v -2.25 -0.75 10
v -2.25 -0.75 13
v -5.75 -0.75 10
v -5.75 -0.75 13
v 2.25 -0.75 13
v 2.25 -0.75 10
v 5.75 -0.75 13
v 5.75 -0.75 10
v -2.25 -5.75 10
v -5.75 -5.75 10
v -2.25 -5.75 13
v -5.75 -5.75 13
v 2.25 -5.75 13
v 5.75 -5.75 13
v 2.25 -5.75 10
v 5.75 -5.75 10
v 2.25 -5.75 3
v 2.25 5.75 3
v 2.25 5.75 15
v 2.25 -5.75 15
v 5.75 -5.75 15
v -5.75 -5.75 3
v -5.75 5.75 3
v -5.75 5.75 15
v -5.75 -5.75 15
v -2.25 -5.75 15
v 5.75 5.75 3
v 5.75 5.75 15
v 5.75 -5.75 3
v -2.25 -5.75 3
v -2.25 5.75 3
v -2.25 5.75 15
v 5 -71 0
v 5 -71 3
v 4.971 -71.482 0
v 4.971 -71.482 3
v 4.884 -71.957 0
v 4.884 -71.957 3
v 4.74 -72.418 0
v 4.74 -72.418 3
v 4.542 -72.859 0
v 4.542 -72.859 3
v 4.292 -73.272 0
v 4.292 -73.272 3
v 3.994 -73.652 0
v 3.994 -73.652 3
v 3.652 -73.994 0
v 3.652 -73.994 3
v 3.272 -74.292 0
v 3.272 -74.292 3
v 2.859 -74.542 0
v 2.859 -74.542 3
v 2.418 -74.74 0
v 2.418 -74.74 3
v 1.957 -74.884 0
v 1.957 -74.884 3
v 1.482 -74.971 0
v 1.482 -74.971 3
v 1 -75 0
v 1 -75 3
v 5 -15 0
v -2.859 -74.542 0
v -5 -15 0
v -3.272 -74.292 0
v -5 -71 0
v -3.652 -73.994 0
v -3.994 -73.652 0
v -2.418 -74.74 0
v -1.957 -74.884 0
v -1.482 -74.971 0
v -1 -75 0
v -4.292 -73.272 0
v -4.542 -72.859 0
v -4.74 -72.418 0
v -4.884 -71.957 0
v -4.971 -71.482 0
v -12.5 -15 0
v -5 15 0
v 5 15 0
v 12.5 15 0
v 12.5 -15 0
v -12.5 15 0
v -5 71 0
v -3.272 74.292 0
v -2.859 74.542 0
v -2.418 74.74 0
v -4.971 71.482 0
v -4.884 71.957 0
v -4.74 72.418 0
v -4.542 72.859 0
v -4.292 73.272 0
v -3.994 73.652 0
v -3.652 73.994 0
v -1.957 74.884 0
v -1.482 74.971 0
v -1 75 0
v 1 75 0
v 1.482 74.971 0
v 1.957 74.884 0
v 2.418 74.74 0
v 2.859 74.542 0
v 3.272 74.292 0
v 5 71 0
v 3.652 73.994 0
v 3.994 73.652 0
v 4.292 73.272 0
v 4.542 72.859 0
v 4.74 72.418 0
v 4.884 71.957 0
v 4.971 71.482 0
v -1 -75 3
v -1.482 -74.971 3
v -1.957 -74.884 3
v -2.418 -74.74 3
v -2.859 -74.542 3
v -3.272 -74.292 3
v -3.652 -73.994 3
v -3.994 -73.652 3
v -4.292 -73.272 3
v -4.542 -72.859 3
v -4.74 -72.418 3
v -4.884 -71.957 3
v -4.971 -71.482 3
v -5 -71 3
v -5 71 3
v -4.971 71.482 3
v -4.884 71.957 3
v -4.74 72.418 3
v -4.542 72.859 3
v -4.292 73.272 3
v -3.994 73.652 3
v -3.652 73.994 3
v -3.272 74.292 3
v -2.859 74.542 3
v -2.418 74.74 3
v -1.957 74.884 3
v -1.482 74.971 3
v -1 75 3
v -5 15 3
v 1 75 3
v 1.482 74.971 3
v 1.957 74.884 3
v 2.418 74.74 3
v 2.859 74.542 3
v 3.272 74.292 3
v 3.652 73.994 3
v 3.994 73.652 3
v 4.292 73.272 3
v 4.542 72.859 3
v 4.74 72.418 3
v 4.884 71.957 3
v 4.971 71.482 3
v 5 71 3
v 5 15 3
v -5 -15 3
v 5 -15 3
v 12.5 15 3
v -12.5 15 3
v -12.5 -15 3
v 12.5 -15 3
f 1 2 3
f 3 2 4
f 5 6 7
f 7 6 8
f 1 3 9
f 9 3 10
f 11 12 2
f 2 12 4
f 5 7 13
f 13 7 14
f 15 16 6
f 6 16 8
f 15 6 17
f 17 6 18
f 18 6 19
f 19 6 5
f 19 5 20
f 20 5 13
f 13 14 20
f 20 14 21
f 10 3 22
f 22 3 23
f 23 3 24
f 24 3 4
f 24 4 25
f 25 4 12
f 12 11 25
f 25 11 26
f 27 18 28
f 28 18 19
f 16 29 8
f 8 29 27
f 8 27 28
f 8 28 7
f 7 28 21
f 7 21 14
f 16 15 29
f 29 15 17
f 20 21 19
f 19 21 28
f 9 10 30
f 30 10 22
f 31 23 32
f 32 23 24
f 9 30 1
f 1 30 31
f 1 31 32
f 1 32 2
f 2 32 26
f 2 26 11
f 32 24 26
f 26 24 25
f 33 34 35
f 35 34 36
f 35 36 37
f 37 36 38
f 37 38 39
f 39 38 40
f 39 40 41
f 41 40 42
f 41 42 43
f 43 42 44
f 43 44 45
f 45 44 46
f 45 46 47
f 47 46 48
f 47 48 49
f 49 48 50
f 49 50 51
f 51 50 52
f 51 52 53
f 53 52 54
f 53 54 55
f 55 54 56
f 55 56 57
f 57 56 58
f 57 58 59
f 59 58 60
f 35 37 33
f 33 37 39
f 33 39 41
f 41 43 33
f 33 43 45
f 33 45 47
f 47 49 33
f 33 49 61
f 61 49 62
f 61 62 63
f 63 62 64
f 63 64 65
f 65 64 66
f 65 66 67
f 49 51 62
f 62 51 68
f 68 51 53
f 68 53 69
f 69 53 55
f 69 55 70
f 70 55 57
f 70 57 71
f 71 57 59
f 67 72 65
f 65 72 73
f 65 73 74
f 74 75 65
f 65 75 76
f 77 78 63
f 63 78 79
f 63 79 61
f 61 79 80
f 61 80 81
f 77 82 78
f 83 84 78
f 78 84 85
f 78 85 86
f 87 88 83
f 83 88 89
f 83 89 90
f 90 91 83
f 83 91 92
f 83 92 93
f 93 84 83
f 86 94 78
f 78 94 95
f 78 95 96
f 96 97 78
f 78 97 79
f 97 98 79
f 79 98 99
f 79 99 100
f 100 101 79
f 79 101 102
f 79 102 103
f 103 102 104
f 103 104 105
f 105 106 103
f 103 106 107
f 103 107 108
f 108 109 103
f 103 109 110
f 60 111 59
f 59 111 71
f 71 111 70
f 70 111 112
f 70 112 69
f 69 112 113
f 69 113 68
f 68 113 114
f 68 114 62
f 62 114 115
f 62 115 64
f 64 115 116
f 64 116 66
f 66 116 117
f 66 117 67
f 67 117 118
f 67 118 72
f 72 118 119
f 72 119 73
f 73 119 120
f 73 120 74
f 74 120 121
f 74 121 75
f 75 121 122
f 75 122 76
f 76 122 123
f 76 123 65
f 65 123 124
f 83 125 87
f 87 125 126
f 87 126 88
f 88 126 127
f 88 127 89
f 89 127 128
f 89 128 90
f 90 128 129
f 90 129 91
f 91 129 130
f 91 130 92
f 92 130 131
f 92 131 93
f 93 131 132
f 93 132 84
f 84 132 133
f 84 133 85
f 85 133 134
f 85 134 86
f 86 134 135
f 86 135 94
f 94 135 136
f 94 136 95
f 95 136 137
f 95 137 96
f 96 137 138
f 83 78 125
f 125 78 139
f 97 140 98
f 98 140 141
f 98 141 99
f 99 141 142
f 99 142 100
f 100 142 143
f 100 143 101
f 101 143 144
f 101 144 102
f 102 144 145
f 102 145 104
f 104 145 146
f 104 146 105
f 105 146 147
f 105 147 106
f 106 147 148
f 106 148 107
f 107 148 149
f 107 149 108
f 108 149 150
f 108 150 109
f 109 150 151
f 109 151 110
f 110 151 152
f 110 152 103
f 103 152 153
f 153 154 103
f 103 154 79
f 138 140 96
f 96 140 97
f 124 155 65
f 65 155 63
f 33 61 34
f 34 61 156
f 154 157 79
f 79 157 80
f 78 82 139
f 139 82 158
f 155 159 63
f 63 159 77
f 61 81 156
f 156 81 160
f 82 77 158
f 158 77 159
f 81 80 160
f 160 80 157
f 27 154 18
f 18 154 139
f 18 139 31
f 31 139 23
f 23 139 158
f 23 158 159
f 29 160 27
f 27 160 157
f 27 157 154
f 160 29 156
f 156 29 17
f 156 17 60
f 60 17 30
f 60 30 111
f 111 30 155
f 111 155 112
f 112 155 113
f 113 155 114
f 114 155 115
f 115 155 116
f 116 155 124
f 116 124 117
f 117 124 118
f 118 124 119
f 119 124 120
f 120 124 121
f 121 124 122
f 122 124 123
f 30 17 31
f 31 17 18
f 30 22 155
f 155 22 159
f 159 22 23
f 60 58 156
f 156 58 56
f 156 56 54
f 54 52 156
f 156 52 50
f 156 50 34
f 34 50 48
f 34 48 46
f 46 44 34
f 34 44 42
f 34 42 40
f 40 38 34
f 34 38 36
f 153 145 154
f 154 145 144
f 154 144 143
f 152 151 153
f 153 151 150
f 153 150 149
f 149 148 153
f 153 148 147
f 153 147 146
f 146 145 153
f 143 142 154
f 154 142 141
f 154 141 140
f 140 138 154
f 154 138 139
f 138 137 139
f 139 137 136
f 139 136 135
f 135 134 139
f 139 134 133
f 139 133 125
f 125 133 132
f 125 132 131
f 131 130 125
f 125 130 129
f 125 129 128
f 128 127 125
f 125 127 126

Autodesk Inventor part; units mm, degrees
ref_plane "YZ Plane" through (0, 0, 0) normal (1, 0, 0) x (0, 1, 0)
ref_plane "XZ Plane" through (0, 0, 0) normal (0, 1, 0) x (-1, 0, 0)
ref_plane "XY Plane" through (0, 0, 0) normal (0, 0, 1) x (1, 0, 0)
sketch "Sketch12" plane through (0, 0, 0) normal (0, 0, 1) x (1, 0, 0)
  line L0 (-12.5, 15) -> (12.5, 15)
  line L1 (12.5, 15) -> (12.5, -15)
  line L2 (12.5, -15) -> (-12.5, -15)
  line L3 (-12.5, -15) -> (-12.5, 15)
  line L4 (-12.5, 15) -> (12.5, -15) construction
  line L5 (12.5, 15) -> (-12.5, -15) construction
  point P0 (0, 0)
  dimension "d48" = 25
  dimension "d49" = 30
extrude "Extrusion12" add sketch "Sketch12" along normal blind 3
sketch "Sketch15" plane through (0, 0, 0) normal (0, 0, -1) x (-1, 0, 0)
  line L0 (12.5, -15) -> (-12.5, -15) construction
  line L1 (12.5, 15) -> (12.5, -15) construction
  line L2 (-12.5, 15) -> (12.5, 15) construction
  line L3 (-12.5, -15) -> (-12.5, 15) construction
  line L4 (12.5, 0) -> (-12.5, 0) construction
  line L5 (5, 15) -> (-5, 15)
  line L6 (-5, 15) -> (-5, 75)
  line L7 (-5, 75) -> (5, 75)
  line L8 (5, 75) -> (5, 15)
  line L9 (5, -15) -> (-5, -15)
  line L10 (-5, -15) -> (-5, -75)
  line L11 (-5, -75) -> (5, -75)
  line L12 (5, -75) -> (5, -15)
  point P0 (0, 0)
  point P1 (0, 15)
  point P2 (0, 0)
  dimension "d74" = 10
  dimension "d75" = 60
extrude "Extrusion15" add sketch "Sketch15" against normal up to surface (3 mm away)
fillet "Fillet1" radius 4 4 edges at (5, 75, 1.5) (-5, 75, 1.5) (-5, -75, 1.5) (5, -75, 1.5)
sketch "Sketch17" plane through (0, 0, 3) normal (0, 0, 1) x (1, 0, 0)
  line L0 (5.75, 5.75) -> (-5.75, 5.75) construction
  line L1 (-5.75, 5.75) -> (-5.75, -5.75) construction
  line L2 (-5.75, -5.75) -> (5.75, -5.75) construction
  line L3 (5.75, -5.75) -> (5.75, 5.75) construction
  line L4 (5.75, 5.75) -> (-5.75, -5.75) construction
  line L5 (-5.75, 5.75) -> (5.75, -5.75) construction
  line L6 (5.75, 5.75) -> (2.25, 5.75)
  line L7 (2.25, 5.75) -> (2.25, -5.75)
  line L8 (2.25, -5.75) -> (5.75, -5.75)
  line L9 (5.75, -5.75) -> (5.75, 5.75)
  line L10 (-5.75, -5.75) -> (-2.25, -5.75)
  line L11 (-2.25, -5.75) -> (-2.25, 5.75)
  line L12 (-2.25, 5.75) -> (-5.75, 5.75)
  line L13 (-5.75, 5.75) -> (-5.75, -5.75)
  point P0 (0, 0)
  dimension "d84" = 11.5
  dimension "d85" = 11.5
  dimension "d86" = 3.5
  dimension "d87" = 3.5
extrude "Extrusion17" add sketch "Sketch17" along normal blind 12
sketch "Sketch18" plane through (-5.75, -5.75, 3) normal (0, -1, 0) x (1, 0, 0)
  line L0 (3.5, 0) -> (0, 0) construction
  line L1 (3.5, 0) -> (3.5, 12) construction
  line L2 (0, 12) -> (3.5, 12) construction
  line L3 (0, 0) -> (0, 12) construction
  line L4 (11.5, 0) -> (8, 0) construction
  line L5 (11.5, 0) -> (11.5, 12) construction
  line L6 (8, 12) -> (11.5, 12) construction
  line L7 (8, 0) -> (8, 12) construction
  line L8 (0, 10) -> (11.5, 10)
  line L9 (11.5, 10) -> (11.5, 7)
  line L10 (11.5, 7) -> (0, 7)
  line L11 (0, 7) -> (0, 10)
  point P0 (5.75, -3)
  dimension "d90" = 2
  dimension "d91" = 3
extrude "Extrusion18" cut sketch "Sketch18" against normal blind 5
properties part number "base"
